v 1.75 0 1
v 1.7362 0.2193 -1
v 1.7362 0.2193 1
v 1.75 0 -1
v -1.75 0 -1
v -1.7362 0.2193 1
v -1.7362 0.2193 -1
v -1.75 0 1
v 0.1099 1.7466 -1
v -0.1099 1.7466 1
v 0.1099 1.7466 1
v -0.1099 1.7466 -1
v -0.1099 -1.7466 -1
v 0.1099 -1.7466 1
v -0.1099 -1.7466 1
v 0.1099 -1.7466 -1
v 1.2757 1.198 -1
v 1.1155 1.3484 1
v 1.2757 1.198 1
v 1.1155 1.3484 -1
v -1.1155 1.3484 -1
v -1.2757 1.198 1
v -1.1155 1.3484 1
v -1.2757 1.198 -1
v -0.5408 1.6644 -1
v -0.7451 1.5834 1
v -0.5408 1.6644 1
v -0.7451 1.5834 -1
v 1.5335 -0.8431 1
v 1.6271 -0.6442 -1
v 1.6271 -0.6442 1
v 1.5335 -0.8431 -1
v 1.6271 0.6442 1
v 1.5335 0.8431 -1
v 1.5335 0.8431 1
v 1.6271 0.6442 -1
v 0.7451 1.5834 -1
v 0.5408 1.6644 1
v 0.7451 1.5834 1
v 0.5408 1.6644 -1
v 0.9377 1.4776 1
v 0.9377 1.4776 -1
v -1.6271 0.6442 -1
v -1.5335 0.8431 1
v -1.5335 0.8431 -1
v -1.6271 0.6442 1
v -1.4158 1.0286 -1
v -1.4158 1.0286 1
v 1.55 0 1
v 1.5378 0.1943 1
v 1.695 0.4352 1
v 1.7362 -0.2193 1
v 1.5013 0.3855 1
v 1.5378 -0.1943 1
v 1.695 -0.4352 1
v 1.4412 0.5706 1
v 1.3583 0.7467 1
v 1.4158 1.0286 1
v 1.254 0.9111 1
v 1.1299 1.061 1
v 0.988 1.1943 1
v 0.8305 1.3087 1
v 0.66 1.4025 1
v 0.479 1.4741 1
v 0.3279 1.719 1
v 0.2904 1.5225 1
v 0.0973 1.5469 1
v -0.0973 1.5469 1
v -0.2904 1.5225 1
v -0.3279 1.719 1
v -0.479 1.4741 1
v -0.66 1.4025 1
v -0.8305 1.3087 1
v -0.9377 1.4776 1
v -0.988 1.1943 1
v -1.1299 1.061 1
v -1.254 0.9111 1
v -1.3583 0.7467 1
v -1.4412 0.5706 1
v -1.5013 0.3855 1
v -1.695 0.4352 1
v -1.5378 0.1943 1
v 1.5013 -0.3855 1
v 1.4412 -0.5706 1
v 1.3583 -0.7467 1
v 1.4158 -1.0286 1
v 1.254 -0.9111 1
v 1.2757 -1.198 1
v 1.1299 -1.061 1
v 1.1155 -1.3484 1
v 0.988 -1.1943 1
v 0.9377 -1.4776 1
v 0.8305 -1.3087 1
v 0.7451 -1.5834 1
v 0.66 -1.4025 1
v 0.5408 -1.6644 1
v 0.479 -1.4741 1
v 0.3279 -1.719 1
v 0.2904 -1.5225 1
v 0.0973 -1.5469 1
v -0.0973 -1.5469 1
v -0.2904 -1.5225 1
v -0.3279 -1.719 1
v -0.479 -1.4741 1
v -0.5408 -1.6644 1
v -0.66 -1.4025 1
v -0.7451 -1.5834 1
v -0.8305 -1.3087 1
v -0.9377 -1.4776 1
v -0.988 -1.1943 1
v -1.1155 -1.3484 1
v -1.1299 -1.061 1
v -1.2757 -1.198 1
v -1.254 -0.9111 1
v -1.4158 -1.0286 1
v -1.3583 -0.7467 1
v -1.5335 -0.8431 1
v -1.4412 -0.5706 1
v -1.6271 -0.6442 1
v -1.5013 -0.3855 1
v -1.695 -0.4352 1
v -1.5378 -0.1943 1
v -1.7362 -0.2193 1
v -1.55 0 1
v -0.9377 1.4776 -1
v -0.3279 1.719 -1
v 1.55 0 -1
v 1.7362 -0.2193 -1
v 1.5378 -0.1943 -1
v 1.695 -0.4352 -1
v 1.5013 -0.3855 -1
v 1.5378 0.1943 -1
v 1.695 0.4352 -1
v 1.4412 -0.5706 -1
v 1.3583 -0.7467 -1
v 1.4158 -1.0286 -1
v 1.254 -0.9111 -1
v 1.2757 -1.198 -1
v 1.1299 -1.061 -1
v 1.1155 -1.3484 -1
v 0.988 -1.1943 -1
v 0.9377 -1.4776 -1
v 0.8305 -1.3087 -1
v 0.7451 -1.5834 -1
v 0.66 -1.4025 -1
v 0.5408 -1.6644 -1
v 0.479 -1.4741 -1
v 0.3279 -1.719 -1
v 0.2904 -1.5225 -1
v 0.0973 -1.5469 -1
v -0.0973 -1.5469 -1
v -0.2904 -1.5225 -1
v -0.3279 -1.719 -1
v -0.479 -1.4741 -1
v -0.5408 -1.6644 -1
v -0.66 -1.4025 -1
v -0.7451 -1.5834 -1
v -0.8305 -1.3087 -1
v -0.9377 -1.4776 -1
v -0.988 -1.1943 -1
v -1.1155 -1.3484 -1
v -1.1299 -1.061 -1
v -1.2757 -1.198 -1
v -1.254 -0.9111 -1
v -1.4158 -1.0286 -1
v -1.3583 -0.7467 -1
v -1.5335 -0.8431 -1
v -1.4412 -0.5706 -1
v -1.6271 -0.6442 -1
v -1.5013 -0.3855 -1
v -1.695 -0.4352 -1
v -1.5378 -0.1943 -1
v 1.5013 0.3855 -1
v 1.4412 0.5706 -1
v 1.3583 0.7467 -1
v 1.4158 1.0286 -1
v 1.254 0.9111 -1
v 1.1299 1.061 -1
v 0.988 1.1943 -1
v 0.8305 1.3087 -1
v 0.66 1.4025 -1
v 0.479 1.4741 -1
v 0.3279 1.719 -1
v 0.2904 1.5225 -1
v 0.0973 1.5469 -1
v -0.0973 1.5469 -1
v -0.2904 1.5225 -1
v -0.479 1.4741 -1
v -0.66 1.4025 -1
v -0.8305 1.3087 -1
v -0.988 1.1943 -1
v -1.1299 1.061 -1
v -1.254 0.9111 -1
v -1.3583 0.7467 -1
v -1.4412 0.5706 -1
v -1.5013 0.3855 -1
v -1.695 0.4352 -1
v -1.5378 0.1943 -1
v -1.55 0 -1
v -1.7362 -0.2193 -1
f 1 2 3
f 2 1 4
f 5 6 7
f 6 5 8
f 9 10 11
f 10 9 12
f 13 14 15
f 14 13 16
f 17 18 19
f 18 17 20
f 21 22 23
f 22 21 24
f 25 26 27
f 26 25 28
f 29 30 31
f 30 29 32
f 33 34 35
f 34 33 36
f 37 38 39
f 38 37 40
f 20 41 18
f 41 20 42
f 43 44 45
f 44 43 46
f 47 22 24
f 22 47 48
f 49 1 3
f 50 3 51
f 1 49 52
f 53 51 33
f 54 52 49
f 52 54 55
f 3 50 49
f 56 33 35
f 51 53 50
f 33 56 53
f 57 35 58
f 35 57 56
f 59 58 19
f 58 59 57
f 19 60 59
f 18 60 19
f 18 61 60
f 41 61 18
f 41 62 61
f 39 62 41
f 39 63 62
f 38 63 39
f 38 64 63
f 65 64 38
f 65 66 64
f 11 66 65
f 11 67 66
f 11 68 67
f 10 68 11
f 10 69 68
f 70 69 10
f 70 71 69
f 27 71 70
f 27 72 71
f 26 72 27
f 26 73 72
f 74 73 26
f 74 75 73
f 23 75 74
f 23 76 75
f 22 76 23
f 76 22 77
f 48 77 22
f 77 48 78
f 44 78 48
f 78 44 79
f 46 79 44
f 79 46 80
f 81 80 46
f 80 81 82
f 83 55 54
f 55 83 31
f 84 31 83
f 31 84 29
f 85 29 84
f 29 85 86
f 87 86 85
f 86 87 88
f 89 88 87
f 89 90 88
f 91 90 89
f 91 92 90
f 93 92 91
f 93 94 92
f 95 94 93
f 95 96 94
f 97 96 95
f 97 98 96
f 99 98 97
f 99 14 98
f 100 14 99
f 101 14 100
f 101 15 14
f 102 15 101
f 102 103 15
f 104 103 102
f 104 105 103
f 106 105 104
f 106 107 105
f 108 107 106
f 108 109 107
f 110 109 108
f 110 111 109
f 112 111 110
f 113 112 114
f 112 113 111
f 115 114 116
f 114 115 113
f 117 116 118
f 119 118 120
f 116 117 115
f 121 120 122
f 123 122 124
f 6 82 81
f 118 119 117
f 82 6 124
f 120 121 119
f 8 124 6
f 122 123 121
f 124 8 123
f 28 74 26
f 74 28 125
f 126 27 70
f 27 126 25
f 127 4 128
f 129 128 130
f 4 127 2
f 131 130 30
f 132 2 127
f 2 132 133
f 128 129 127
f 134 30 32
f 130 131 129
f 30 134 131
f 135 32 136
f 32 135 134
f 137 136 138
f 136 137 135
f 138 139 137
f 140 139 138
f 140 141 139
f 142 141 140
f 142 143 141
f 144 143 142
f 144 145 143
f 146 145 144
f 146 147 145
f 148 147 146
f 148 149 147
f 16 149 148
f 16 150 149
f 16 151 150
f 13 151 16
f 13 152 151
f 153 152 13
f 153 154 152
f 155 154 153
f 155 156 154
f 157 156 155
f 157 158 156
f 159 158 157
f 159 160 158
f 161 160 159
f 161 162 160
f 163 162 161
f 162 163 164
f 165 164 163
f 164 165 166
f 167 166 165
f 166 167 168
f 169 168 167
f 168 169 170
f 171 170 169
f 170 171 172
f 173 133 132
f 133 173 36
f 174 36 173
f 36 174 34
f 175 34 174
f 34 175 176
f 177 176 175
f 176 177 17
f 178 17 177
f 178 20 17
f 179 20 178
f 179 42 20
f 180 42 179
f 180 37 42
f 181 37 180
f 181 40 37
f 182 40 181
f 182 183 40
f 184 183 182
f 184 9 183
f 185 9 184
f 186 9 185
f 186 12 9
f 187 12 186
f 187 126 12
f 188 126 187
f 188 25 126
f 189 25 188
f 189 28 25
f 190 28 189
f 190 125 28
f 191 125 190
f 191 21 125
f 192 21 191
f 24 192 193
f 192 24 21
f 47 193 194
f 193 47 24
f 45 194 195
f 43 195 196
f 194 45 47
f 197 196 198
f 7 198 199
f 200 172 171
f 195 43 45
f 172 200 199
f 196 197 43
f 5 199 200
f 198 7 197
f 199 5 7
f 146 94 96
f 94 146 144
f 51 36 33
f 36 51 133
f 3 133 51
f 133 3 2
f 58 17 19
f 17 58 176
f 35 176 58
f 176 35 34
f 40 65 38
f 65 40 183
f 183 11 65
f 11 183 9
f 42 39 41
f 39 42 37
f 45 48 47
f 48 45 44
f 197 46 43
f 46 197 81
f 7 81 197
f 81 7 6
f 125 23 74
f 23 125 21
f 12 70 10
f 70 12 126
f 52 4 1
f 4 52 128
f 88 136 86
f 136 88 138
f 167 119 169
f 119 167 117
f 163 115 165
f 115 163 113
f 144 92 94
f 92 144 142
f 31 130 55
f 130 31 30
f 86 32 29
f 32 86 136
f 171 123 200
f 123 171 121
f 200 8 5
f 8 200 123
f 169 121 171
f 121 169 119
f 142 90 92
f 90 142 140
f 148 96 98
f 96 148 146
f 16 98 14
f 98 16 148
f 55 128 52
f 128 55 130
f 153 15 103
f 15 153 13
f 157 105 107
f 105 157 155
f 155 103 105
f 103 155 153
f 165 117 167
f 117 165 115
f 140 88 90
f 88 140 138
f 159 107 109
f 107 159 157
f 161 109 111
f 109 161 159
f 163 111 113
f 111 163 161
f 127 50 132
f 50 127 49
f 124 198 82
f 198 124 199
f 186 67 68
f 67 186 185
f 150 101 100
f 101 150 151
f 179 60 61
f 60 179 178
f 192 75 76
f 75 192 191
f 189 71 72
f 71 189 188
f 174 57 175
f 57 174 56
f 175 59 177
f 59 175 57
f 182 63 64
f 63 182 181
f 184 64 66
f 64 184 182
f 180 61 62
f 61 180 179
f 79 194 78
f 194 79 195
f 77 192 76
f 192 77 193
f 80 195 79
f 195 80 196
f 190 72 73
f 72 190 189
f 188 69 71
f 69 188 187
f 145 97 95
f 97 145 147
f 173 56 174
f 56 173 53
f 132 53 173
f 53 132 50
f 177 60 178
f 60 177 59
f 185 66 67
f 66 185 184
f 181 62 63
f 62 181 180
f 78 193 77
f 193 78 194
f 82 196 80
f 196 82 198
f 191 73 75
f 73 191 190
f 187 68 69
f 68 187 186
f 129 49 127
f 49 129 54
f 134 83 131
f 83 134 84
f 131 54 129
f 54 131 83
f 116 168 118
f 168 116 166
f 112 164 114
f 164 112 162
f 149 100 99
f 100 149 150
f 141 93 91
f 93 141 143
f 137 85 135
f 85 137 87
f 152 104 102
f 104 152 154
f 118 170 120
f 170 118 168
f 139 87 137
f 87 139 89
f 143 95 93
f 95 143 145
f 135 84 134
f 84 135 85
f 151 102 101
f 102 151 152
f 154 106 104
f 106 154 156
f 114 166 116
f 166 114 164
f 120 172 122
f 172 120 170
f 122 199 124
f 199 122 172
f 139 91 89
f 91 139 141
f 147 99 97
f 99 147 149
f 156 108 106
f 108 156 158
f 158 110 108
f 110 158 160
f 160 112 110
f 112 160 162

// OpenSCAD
$fn = 50;


difference() {
	union() {
		translate(v = [0, 0, -1.0000000000]) {
			cylinder(h = 2, r = 1.7500000000);
		}
	}
	union() {
		translate(v = [0, 0, -100.0000000000]) {
			cylinder(h = 200, r = 1.5500000000);
		}
	}
}
